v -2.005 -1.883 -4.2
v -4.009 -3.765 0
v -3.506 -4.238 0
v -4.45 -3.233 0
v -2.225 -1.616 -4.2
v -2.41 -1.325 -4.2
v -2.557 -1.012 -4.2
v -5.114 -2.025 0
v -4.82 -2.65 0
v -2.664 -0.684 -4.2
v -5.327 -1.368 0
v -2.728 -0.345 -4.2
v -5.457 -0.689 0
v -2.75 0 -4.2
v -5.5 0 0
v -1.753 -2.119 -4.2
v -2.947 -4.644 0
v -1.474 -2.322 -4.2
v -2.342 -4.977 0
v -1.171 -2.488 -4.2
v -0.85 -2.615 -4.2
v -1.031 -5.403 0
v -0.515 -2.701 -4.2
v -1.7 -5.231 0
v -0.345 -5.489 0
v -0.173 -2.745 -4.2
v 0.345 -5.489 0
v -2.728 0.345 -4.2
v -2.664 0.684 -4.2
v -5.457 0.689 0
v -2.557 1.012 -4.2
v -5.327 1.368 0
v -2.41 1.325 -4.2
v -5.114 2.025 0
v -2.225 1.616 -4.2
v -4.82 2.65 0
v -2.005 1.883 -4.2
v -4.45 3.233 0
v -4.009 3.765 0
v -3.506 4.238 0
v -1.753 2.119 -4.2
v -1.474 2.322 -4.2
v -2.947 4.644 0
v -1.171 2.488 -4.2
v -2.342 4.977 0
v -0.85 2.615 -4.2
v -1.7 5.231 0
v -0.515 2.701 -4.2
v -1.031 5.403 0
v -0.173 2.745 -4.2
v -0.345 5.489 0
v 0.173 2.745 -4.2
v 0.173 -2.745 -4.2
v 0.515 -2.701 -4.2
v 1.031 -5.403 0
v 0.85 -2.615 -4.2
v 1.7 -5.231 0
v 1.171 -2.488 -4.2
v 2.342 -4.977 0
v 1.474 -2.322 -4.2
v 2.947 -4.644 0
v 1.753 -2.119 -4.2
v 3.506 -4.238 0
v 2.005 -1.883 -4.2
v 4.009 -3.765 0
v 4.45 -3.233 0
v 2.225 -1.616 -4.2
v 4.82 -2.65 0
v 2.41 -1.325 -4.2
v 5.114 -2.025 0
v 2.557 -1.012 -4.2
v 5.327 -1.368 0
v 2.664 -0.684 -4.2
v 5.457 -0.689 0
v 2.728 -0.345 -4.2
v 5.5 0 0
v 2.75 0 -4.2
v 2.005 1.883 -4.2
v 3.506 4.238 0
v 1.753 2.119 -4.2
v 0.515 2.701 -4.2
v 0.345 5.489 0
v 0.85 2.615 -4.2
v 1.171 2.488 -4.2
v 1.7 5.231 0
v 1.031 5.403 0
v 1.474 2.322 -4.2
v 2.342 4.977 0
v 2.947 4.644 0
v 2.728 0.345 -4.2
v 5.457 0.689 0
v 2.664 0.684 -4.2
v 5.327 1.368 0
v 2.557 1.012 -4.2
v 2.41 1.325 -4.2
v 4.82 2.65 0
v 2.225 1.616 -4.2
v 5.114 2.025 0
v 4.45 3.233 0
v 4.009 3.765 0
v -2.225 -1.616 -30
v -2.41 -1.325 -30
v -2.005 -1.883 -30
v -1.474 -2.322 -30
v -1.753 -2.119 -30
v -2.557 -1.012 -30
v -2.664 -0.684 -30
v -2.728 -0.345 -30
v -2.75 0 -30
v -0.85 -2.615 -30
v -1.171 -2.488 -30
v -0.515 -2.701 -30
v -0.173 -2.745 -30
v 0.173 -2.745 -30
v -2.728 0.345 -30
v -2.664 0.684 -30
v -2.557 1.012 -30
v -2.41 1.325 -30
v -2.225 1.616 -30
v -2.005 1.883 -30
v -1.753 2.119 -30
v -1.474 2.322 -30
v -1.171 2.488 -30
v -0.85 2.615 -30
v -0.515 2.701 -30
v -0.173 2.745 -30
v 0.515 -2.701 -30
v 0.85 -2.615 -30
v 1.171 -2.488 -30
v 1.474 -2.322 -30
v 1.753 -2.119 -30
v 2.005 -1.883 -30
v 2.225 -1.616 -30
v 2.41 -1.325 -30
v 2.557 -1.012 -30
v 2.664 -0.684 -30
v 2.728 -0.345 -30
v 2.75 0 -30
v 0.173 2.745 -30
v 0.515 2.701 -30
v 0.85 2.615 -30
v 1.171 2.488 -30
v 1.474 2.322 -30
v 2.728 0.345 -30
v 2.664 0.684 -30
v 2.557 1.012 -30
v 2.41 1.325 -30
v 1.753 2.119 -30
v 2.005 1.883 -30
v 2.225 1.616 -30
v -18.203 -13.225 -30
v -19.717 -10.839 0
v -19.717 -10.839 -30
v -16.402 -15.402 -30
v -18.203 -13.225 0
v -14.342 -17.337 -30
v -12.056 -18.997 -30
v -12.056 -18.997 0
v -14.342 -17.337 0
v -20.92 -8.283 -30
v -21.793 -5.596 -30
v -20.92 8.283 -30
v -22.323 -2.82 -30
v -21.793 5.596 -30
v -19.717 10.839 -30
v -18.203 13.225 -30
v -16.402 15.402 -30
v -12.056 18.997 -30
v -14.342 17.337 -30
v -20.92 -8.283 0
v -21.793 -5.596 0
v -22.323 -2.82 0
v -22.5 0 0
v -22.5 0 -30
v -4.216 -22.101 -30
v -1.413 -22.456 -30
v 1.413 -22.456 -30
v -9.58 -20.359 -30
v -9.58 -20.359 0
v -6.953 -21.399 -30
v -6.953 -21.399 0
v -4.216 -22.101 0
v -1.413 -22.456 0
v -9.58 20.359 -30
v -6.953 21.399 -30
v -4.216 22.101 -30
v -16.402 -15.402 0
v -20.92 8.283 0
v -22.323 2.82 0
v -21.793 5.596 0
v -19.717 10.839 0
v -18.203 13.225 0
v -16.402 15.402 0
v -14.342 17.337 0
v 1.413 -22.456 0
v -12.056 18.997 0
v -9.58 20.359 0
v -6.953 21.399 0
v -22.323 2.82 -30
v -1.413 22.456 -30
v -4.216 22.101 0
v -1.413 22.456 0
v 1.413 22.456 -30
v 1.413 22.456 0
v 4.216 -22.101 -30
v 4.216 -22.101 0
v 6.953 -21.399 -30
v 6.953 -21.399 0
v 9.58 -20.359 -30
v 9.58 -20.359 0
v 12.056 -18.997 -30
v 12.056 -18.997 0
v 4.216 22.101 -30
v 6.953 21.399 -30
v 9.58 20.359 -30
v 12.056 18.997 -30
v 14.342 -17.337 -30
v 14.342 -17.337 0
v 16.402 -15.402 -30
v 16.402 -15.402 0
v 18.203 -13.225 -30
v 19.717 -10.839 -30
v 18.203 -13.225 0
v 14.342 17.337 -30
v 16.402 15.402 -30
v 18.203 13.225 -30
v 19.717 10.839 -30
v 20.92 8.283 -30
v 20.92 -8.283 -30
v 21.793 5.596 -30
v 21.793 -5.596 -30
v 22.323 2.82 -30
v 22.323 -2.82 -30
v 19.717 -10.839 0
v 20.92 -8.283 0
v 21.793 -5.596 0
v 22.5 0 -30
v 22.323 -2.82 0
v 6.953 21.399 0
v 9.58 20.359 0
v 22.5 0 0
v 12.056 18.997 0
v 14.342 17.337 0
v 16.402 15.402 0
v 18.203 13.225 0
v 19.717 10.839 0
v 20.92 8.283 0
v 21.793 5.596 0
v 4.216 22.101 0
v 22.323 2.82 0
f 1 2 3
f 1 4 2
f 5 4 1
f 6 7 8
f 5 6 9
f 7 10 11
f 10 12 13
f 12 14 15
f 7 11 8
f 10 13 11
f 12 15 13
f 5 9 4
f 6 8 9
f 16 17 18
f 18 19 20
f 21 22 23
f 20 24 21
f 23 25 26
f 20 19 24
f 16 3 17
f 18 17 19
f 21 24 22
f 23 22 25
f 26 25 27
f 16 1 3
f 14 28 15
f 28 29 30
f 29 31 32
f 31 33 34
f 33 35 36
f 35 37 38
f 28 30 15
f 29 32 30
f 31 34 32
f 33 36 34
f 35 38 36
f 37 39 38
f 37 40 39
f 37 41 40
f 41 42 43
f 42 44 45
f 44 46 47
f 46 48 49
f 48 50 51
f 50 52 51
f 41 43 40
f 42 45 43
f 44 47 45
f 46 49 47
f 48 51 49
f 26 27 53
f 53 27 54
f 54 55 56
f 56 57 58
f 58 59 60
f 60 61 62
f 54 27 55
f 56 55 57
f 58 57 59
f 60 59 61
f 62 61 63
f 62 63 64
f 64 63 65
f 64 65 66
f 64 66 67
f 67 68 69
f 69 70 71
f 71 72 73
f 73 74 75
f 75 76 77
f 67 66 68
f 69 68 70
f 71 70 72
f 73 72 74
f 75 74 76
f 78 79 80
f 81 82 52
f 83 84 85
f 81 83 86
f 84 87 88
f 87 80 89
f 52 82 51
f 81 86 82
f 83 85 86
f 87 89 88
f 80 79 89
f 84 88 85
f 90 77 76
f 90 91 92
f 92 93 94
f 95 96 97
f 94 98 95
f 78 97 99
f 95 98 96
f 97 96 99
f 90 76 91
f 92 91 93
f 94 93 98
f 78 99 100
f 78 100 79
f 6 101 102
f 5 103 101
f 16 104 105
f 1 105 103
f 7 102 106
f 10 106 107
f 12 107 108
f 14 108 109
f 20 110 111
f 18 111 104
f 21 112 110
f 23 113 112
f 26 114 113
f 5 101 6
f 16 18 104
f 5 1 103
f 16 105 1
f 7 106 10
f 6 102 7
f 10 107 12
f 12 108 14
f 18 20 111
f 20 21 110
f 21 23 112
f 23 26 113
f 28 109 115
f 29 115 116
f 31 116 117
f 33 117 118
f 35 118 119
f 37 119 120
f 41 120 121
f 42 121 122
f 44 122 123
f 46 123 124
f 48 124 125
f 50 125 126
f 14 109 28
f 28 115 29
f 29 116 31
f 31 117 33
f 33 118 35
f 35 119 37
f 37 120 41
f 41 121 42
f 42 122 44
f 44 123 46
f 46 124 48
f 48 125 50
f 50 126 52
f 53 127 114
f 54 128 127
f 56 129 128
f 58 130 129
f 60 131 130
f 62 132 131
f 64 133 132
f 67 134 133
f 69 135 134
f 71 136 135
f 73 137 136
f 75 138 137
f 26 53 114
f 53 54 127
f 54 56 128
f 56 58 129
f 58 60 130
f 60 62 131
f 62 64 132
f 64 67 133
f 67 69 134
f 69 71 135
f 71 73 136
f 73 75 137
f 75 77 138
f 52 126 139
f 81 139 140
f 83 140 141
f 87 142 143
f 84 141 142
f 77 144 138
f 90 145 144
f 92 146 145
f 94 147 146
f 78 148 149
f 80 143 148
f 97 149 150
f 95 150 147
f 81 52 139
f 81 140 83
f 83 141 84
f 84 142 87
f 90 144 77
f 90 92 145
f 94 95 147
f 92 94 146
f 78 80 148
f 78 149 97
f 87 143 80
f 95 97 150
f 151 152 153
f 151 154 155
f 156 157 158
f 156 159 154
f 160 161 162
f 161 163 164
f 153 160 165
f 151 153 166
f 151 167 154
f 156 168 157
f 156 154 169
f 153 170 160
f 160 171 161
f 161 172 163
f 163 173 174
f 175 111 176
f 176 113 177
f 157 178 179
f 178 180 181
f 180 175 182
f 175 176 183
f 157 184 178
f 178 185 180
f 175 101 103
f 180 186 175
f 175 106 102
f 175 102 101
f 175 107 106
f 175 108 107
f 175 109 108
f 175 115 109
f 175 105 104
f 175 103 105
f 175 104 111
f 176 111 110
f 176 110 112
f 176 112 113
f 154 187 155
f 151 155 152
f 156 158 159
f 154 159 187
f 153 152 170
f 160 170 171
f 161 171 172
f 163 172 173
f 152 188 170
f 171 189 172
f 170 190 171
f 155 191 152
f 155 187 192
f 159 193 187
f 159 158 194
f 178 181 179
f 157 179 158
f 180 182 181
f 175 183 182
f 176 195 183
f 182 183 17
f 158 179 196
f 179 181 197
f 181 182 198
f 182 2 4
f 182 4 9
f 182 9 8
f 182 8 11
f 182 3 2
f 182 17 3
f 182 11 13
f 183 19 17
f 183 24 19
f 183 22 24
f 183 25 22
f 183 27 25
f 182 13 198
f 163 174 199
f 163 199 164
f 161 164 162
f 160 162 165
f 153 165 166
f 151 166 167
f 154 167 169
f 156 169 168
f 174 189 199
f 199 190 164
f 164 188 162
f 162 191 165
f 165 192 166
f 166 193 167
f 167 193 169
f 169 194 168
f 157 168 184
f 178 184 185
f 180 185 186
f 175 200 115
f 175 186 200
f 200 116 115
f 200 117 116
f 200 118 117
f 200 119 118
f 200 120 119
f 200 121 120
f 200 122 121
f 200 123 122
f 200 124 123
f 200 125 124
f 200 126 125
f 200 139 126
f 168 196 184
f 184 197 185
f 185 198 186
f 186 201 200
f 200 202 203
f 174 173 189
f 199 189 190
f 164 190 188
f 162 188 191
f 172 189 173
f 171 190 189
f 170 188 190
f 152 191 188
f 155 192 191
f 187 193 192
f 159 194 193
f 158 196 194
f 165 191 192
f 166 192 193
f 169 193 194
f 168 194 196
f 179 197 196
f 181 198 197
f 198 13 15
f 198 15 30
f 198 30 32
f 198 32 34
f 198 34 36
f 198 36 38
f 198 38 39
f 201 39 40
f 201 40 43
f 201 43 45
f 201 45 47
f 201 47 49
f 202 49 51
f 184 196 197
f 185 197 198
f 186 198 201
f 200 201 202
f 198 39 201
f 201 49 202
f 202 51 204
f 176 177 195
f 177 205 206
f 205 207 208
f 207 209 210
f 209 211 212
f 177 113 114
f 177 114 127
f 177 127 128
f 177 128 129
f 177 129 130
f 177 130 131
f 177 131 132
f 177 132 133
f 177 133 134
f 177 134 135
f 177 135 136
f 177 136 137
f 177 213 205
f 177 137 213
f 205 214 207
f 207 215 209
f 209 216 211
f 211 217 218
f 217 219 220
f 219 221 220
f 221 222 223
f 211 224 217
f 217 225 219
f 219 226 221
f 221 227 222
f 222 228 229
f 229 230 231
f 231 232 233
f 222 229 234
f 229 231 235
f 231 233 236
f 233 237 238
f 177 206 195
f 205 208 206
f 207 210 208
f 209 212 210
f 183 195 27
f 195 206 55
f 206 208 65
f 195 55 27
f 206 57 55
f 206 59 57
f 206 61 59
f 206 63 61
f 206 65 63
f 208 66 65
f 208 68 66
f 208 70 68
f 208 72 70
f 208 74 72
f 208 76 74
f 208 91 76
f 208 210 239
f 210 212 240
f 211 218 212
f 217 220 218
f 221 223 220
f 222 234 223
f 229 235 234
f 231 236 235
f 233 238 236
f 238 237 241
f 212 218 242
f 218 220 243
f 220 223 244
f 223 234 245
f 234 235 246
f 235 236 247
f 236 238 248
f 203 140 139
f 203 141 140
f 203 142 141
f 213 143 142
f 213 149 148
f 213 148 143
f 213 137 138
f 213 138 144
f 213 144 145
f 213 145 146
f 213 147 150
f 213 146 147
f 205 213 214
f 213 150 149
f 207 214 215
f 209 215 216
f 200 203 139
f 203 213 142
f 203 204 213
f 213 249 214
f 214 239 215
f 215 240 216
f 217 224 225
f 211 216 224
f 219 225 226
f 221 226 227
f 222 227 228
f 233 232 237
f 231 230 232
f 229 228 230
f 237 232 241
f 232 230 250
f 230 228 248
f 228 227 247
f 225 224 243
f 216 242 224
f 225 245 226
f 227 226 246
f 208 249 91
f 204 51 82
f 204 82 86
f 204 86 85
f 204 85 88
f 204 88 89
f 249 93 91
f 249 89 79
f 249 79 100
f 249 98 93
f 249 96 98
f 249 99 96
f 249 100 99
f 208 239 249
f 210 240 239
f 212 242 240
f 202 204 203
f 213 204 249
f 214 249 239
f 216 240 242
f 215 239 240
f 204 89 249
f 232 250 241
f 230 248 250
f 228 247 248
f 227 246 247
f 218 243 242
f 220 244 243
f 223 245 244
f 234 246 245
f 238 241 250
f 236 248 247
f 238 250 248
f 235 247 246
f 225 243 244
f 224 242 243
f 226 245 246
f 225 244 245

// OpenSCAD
$fn = 50;

difference() {
	union() {
		translate(v = [0, 0, -30.0]) {
			cylinder(h = 30, r = 22.5);
		}
	}
	union() {
		translate(v = [0, 0, 0]) {
			rotate(a = [0, 0, 0]) {
				difference() {
					union() {
						translate(v = [0, 0, -33.0]) {
							cylinder(h = 33, r = 2.25);
						}
						translate(v = [0, 0, -4.2]) {
							cylinder(h = 4.2, r1 = 2.75, r2 = 5.5);
						}
						translate(v = [0, 0, -33.0]) {
							cylinder(h = 33, r = 2.75);
						}
						translate(v = [0, 0, -33.0]) {
							cylinder(h = 33, r = 2.25);
						}
					}
					union();
				}
			}
		}
	}
}
